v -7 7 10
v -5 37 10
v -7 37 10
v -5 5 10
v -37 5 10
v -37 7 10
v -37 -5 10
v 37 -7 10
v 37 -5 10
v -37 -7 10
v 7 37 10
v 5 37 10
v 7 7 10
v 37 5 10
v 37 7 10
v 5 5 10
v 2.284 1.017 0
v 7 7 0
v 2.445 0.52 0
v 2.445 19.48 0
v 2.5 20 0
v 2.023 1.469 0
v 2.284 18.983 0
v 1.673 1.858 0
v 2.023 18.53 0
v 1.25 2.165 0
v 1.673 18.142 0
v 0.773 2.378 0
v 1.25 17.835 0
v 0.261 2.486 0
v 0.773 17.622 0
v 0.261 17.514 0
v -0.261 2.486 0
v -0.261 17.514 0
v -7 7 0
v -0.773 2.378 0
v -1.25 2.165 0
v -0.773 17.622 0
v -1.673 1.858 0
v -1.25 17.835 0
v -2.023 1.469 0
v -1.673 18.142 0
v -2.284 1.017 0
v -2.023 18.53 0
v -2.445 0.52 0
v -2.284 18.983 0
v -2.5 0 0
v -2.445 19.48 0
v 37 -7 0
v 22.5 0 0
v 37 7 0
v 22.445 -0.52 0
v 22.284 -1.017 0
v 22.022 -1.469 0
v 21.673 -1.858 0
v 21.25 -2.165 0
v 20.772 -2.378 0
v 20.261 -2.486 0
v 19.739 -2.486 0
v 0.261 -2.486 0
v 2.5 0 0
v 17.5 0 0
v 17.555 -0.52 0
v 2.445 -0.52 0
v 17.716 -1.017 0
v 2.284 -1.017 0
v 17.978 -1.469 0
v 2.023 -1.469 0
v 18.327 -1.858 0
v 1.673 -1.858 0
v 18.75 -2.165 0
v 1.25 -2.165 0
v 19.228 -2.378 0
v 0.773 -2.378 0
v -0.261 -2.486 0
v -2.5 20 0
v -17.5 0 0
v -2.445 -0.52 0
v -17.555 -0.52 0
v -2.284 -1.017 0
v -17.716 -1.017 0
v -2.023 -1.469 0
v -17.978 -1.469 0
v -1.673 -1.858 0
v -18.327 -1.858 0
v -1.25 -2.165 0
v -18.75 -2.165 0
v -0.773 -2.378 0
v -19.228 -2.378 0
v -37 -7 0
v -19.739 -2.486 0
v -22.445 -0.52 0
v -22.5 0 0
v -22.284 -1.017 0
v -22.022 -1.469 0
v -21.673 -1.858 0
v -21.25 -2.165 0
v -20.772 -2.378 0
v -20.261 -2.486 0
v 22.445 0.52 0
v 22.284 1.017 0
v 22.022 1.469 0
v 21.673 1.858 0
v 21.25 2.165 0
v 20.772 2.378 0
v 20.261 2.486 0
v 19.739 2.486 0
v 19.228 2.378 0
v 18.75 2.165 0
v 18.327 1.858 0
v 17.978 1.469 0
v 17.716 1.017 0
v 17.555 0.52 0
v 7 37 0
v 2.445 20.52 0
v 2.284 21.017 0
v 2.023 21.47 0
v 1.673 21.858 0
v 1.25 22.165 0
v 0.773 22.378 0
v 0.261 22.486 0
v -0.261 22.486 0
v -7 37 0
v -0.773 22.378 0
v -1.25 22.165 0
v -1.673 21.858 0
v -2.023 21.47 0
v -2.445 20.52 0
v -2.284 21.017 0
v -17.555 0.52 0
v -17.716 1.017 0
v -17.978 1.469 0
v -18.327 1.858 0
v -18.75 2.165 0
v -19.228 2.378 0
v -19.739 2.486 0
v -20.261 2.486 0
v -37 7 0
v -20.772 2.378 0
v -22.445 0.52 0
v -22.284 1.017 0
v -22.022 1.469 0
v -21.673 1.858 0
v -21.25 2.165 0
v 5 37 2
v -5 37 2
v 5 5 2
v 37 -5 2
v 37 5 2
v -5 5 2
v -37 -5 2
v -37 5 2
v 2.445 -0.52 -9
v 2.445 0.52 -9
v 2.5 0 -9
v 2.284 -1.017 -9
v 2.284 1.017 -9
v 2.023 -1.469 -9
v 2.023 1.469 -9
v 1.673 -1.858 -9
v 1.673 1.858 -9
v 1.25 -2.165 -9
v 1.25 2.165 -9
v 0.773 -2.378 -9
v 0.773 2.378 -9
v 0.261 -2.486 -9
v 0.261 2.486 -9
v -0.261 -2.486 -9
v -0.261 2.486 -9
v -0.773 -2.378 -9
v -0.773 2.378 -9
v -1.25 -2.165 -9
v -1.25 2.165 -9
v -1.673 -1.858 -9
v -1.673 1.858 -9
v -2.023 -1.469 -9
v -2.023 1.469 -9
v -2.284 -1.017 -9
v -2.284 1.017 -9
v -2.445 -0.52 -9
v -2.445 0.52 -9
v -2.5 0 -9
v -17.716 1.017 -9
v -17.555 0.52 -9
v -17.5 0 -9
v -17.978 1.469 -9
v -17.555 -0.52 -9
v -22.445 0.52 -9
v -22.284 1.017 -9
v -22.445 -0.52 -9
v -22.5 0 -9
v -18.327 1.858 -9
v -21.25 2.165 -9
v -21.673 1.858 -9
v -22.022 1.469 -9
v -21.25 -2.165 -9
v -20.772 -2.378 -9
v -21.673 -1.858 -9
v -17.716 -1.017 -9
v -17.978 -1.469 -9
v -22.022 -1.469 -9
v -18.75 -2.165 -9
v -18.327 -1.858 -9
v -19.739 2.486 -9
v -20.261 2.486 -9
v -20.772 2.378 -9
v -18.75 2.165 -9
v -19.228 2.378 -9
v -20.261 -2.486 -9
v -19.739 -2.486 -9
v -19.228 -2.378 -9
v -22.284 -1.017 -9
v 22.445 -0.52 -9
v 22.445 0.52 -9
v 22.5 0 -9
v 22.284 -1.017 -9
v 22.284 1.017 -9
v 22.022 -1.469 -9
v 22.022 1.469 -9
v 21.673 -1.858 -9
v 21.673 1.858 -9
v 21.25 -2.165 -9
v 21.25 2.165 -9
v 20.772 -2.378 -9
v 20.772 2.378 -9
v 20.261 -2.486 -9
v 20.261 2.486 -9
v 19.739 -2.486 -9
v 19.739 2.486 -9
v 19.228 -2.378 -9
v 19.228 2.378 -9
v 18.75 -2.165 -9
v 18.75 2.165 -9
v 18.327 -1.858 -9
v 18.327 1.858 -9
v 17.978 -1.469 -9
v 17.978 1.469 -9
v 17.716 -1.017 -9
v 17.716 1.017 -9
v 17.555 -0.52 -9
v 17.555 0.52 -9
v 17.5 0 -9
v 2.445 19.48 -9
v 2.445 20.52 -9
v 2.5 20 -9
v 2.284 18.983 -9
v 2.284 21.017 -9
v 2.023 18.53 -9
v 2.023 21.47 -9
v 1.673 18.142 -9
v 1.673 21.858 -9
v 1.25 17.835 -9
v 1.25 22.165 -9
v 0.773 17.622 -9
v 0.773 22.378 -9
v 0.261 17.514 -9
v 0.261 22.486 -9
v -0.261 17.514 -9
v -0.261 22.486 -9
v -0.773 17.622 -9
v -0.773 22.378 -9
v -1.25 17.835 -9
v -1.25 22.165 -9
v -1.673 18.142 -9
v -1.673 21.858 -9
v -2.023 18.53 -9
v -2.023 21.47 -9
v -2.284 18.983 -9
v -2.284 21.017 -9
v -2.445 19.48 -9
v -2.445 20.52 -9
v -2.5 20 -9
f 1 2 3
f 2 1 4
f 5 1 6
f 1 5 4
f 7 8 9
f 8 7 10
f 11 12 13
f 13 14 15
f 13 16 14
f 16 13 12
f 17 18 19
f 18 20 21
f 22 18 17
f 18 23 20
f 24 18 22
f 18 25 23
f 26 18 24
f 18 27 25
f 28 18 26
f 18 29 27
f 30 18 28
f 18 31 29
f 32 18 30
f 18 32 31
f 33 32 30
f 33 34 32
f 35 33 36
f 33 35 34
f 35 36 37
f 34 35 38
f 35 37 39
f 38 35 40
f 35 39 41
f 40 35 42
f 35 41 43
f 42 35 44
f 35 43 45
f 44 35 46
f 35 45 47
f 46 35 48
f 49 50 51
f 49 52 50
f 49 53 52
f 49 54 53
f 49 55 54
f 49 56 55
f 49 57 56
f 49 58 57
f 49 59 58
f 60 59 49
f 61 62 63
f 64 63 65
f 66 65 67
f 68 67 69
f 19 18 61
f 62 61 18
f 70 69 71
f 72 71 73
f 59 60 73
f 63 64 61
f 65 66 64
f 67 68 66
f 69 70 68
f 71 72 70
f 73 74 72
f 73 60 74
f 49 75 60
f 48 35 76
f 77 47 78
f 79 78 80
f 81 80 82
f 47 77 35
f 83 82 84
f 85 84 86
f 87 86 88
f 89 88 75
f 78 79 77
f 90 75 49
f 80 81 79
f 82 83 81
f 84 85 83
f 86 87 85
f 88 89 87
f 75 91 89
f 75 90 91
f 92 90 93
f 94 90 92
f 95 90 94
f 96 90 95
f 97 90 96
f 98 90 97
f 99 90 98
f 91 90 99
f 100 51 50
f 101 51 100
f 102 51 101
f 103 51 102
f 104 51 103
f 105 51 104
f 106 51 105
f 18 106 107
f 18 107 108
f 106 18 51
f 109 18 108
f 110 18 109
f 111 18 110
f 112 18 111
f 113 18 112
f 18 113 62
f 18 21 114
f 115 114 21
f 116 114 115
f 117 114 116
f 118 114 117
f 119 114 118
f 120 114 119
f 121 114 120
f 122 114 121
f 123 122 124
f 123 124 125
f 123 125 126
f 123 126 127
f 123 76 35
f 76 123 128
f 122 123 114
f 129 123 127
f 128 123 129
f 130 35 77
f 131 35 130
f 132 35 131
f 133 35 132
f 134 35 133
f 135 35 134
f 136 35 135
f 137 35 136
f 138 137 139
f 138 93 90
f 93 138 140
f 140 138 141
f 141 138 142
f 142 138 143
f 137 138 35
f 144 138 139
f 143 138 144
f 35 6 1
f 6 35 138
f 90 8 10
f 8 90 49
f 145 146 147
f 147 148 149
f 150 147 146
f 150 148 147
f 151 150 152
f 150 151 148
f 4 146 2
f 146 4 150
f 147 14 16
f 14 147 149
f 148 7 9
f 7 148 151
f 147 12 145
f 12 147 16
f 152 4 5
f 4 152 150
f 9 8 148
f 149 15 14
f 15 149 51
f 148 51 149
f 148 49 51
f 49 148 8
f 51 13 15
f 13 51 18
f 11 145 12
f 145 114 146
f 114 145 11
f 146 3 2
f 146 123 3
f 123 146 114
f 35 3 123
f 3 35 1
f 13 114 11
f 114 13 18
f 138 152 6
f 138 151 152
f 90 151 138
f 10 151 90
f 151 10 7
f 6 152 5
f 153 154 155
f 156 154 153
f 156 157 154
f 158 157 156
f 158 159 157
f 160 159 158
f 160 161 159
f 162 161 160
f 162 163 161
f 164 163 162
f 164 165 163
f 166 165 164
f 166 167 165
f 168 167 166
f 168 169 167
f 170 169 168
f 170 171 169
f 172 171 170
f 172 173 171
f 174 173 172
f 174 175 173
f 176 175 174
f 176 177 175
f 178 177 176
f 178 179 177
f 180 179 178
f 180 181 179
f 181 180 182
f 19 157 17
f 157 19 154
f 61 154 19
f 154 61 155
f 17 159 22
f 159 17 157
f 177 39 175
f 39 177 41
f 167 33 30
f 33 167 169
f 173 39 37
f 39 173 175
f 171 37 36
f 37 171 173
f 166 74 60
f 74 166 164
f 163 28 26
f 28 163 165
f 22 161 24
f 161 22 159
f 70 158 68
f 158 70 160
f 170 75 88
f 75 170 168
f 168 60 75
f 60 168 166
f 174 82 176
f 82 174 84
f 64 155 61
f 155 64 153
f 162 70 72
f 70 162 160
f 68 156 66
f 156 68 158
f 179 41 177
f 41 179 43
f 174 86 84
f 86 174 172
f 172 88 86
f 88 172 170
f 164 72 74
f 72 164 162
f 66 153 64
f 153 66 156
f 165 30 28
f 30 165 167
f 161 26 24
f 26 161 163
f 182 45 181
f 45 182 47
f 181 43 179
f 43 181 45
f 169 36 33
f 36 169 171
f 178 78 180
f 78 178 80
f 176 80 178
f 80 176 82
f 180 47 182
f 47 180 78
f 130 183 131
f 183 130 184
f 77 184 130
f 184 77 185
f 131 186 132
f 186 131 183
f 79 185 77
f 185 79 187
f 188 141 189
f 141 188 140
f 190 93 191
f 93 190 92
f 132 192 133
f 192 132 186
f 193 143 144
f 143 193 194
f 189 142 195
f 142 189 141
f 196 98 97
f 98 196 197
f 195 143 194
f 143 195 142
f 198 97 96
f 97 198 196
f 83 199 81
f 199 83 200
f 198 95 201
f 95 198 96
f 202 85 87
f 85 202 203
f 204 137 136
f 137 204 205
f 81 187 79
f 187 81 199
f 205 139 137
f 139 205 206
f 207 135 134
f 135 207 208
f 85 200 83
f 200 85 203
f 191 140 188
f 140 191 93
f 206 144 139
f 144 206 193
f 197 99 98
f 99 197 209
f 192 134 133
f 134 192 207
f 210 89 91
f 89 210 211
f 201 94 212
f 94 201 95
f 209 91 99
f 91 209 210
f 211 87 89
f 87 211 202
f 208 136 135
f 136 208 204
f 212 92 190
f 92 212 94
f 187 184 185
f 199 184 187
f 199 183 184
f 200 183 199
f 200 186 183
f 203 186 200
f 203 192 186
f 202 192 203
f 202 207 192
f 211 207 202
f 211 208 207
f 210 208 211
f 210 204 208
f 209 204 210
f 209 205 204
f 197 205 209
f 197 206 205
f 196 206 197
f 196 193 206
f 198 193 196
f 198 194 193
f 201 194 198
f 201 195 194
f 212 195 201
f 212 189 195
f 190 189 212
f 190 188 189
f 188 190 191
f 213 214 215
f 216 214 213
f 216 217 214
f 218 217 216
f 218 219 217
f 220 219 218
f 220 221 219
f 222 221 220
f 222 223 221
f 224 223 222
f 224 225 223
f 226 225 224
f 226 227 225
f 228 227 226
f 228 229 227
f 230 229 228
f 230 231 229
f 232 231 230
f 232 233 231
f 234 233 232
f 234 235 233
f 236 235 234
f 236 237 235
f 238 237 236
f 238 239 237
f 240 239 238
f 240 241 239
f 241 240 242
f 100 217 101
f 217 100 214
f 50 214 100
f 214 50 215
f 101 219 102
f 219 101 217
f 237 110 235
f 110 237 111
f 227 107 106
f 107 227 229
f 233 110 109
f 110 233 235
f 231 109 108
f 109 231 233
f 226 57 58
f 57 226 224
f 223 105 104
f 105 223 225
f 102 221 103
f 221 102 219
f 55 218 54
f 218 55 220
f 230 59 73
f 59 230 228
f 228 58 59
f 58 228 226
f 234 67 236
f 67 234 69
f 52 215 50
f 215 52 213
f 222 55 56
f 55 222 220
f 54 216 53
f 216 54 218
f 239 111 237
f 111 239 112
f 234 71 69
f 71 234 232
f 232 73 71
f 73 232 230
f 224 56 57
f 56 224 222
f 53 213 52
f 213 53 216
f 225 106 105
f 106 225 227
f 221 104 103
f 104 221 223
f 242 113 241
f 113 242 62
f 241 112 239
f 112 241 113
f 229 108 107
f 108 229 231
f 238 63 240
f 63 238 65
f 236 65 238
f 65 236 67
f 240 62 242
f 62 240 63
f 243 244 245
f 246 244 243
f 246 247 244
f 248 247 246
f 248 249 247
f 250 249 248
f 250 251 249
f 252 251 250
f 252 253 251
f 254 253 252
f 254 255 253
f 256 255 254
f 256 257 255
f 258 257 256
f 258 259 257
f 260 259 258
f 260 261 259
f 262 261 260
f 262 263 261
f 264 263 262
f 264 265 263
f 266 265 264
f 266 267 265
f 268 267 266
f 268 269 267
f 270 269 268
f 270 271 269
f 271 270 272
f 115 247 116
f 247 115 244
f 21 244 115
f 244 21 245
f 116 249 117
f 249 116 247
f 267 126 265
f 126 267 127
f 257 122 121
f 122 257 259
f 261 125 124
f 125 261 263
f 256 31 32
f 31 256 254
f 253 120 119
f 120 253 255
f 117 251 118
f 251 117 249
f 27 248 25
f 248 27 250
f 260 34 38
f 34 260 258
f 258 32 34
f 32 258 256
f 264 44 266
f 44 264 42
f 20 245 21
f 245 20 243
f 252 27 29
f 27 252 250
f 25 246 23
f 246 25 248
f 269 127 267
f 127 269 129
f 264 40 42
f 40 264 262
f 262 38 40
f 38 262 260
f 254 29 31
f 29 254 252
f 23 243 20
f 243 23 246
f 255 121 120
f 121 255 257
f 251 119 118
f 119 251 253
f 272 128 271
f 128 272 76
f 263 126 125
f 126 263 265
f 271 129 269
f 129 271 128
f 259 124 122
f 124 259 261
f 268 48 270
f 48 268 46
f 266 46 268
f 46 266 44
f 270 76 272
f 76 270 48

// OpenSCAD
// Т-образный паз с шипами для вставки в основание
// Модульная конструкция: центральное основание + 3 рукава + шипы

// Параметры (все размеры в мм)
center_size = 10;     // Размер центрального квадрата (внутри)
sleeve_length = 30;   // Длина рукава
groove_width = 10;    // Ширина паза (внутри) - для фанеры 9.3мм
wall_height = 10;     // Высота стенок
wall_thickness = 2;   // Толщина стенок

// Параметры шипов
dowel_diameter = 5;   // Диаметр шипа
dowel_depth = 9;      // Глубина шипа (высота)
dowel_spacing = 20;   // Шаг между шипами

// Вычисляемые размеры
total_width = groove_width + 2 * wall_thickness;  // 14 мм
center_total = center_size + 2 * wall_thickness;  // 14 мм

// 1. Метод: нарисовать основание
module draw_base() {
    difference() {
        cube([center_total, center_total, wall_height]);
        translate([wall_thickness, wall_thickness, wall_thickness])
            cube([center_size, center_size, wall_height]);
    }
}

// Модуль для создания одного рукава
module single_sleeve() {
    difference() {
        cube([sleeve_length, total_width, wall_height]);
        translate([0, wall_thickness, wall_thickness])
            cube([sleeve_length, groove_width, wall_height]);
    }
}

// Метод: вырезать отверстие в стенке основания
module cut_wall_opening(side) {
    if (side == 0) {
        translate([center_total - wall_thickness - 0.1, wall_thickness, wall_thickness])
            cube([wall_thickness + 0.2, groove_width, wall_height]);
    } else if (side == 1) {
        translate([wall_thickness, center_total - wall_thickness - 0.1, wall_thickness])
            cube([groove_width, wall_thickness + 0.2, wall_height]);
    } else if (side == 2) {
        translate([-0.1, wall_thickness, wall_thickness])
            cube([wall_thickness + 0.2, groove_width, wall_height]);
    }
}

// 2. Метод: прицепить рукав к основанию
module attach_sleeve(side) {
    if (side == 0) {
        translate([center_total, center_total/2 - total_width/2, 0])
            single_sleeve();
    } else if (side == 1) {
        translate([center_total/2 + total_width/2, center_total, 0])
            rotate([0, 0, 90])
                single_sleeve();
    } else if (side == 2) {
        translate([-sleeve_length, center_total/2 - total_width/2, 0])
            single_sleeve();
    }
}

// 3. Метод: добавить шип в позиции (x, y)
module add_dowel(x, y) {
    translate([x, y, -dowel_depth])
        cylinder(h=dowel_depth, d=dowel_diameter, $fn=30);
}

// Собираем Т-образную конструкцию с шипами
translate([-center_total/2, -center_total/2, 0]) {
    union() {
        difference() {
            draw_base();
            cut_wall_opening(0);  // Право
            cut_wall_opening(1);  // Верх
            cut_wall_opening(2);  // Лево
        }
        attach_sleeve(0);  // Право
        attach_sleeve(1);  // Верх
        attach_sleeve(2);  // Лево

        // Шипы: центр + 3 направления
        add_dowel(center_total/2, center_total/2);                    // Центр
        add_dowel(center_total/2 - dowel_spacing, center_total/2);   // Лево
        add_dowel(center_total/2 + dowel_spacing, center_total/2);   // Право
        add_dowel(center_total/2, center_total/2 + dowel_spacing);   // Верх
    }
}

// Информация для проверки
echo("=== Размеры Т-образного паза с шипами ===");
echo("Количество шипов: 4 (центр + 3 направления)");
echo("Шаг между шипами:", dowel_spacing, "мм");
